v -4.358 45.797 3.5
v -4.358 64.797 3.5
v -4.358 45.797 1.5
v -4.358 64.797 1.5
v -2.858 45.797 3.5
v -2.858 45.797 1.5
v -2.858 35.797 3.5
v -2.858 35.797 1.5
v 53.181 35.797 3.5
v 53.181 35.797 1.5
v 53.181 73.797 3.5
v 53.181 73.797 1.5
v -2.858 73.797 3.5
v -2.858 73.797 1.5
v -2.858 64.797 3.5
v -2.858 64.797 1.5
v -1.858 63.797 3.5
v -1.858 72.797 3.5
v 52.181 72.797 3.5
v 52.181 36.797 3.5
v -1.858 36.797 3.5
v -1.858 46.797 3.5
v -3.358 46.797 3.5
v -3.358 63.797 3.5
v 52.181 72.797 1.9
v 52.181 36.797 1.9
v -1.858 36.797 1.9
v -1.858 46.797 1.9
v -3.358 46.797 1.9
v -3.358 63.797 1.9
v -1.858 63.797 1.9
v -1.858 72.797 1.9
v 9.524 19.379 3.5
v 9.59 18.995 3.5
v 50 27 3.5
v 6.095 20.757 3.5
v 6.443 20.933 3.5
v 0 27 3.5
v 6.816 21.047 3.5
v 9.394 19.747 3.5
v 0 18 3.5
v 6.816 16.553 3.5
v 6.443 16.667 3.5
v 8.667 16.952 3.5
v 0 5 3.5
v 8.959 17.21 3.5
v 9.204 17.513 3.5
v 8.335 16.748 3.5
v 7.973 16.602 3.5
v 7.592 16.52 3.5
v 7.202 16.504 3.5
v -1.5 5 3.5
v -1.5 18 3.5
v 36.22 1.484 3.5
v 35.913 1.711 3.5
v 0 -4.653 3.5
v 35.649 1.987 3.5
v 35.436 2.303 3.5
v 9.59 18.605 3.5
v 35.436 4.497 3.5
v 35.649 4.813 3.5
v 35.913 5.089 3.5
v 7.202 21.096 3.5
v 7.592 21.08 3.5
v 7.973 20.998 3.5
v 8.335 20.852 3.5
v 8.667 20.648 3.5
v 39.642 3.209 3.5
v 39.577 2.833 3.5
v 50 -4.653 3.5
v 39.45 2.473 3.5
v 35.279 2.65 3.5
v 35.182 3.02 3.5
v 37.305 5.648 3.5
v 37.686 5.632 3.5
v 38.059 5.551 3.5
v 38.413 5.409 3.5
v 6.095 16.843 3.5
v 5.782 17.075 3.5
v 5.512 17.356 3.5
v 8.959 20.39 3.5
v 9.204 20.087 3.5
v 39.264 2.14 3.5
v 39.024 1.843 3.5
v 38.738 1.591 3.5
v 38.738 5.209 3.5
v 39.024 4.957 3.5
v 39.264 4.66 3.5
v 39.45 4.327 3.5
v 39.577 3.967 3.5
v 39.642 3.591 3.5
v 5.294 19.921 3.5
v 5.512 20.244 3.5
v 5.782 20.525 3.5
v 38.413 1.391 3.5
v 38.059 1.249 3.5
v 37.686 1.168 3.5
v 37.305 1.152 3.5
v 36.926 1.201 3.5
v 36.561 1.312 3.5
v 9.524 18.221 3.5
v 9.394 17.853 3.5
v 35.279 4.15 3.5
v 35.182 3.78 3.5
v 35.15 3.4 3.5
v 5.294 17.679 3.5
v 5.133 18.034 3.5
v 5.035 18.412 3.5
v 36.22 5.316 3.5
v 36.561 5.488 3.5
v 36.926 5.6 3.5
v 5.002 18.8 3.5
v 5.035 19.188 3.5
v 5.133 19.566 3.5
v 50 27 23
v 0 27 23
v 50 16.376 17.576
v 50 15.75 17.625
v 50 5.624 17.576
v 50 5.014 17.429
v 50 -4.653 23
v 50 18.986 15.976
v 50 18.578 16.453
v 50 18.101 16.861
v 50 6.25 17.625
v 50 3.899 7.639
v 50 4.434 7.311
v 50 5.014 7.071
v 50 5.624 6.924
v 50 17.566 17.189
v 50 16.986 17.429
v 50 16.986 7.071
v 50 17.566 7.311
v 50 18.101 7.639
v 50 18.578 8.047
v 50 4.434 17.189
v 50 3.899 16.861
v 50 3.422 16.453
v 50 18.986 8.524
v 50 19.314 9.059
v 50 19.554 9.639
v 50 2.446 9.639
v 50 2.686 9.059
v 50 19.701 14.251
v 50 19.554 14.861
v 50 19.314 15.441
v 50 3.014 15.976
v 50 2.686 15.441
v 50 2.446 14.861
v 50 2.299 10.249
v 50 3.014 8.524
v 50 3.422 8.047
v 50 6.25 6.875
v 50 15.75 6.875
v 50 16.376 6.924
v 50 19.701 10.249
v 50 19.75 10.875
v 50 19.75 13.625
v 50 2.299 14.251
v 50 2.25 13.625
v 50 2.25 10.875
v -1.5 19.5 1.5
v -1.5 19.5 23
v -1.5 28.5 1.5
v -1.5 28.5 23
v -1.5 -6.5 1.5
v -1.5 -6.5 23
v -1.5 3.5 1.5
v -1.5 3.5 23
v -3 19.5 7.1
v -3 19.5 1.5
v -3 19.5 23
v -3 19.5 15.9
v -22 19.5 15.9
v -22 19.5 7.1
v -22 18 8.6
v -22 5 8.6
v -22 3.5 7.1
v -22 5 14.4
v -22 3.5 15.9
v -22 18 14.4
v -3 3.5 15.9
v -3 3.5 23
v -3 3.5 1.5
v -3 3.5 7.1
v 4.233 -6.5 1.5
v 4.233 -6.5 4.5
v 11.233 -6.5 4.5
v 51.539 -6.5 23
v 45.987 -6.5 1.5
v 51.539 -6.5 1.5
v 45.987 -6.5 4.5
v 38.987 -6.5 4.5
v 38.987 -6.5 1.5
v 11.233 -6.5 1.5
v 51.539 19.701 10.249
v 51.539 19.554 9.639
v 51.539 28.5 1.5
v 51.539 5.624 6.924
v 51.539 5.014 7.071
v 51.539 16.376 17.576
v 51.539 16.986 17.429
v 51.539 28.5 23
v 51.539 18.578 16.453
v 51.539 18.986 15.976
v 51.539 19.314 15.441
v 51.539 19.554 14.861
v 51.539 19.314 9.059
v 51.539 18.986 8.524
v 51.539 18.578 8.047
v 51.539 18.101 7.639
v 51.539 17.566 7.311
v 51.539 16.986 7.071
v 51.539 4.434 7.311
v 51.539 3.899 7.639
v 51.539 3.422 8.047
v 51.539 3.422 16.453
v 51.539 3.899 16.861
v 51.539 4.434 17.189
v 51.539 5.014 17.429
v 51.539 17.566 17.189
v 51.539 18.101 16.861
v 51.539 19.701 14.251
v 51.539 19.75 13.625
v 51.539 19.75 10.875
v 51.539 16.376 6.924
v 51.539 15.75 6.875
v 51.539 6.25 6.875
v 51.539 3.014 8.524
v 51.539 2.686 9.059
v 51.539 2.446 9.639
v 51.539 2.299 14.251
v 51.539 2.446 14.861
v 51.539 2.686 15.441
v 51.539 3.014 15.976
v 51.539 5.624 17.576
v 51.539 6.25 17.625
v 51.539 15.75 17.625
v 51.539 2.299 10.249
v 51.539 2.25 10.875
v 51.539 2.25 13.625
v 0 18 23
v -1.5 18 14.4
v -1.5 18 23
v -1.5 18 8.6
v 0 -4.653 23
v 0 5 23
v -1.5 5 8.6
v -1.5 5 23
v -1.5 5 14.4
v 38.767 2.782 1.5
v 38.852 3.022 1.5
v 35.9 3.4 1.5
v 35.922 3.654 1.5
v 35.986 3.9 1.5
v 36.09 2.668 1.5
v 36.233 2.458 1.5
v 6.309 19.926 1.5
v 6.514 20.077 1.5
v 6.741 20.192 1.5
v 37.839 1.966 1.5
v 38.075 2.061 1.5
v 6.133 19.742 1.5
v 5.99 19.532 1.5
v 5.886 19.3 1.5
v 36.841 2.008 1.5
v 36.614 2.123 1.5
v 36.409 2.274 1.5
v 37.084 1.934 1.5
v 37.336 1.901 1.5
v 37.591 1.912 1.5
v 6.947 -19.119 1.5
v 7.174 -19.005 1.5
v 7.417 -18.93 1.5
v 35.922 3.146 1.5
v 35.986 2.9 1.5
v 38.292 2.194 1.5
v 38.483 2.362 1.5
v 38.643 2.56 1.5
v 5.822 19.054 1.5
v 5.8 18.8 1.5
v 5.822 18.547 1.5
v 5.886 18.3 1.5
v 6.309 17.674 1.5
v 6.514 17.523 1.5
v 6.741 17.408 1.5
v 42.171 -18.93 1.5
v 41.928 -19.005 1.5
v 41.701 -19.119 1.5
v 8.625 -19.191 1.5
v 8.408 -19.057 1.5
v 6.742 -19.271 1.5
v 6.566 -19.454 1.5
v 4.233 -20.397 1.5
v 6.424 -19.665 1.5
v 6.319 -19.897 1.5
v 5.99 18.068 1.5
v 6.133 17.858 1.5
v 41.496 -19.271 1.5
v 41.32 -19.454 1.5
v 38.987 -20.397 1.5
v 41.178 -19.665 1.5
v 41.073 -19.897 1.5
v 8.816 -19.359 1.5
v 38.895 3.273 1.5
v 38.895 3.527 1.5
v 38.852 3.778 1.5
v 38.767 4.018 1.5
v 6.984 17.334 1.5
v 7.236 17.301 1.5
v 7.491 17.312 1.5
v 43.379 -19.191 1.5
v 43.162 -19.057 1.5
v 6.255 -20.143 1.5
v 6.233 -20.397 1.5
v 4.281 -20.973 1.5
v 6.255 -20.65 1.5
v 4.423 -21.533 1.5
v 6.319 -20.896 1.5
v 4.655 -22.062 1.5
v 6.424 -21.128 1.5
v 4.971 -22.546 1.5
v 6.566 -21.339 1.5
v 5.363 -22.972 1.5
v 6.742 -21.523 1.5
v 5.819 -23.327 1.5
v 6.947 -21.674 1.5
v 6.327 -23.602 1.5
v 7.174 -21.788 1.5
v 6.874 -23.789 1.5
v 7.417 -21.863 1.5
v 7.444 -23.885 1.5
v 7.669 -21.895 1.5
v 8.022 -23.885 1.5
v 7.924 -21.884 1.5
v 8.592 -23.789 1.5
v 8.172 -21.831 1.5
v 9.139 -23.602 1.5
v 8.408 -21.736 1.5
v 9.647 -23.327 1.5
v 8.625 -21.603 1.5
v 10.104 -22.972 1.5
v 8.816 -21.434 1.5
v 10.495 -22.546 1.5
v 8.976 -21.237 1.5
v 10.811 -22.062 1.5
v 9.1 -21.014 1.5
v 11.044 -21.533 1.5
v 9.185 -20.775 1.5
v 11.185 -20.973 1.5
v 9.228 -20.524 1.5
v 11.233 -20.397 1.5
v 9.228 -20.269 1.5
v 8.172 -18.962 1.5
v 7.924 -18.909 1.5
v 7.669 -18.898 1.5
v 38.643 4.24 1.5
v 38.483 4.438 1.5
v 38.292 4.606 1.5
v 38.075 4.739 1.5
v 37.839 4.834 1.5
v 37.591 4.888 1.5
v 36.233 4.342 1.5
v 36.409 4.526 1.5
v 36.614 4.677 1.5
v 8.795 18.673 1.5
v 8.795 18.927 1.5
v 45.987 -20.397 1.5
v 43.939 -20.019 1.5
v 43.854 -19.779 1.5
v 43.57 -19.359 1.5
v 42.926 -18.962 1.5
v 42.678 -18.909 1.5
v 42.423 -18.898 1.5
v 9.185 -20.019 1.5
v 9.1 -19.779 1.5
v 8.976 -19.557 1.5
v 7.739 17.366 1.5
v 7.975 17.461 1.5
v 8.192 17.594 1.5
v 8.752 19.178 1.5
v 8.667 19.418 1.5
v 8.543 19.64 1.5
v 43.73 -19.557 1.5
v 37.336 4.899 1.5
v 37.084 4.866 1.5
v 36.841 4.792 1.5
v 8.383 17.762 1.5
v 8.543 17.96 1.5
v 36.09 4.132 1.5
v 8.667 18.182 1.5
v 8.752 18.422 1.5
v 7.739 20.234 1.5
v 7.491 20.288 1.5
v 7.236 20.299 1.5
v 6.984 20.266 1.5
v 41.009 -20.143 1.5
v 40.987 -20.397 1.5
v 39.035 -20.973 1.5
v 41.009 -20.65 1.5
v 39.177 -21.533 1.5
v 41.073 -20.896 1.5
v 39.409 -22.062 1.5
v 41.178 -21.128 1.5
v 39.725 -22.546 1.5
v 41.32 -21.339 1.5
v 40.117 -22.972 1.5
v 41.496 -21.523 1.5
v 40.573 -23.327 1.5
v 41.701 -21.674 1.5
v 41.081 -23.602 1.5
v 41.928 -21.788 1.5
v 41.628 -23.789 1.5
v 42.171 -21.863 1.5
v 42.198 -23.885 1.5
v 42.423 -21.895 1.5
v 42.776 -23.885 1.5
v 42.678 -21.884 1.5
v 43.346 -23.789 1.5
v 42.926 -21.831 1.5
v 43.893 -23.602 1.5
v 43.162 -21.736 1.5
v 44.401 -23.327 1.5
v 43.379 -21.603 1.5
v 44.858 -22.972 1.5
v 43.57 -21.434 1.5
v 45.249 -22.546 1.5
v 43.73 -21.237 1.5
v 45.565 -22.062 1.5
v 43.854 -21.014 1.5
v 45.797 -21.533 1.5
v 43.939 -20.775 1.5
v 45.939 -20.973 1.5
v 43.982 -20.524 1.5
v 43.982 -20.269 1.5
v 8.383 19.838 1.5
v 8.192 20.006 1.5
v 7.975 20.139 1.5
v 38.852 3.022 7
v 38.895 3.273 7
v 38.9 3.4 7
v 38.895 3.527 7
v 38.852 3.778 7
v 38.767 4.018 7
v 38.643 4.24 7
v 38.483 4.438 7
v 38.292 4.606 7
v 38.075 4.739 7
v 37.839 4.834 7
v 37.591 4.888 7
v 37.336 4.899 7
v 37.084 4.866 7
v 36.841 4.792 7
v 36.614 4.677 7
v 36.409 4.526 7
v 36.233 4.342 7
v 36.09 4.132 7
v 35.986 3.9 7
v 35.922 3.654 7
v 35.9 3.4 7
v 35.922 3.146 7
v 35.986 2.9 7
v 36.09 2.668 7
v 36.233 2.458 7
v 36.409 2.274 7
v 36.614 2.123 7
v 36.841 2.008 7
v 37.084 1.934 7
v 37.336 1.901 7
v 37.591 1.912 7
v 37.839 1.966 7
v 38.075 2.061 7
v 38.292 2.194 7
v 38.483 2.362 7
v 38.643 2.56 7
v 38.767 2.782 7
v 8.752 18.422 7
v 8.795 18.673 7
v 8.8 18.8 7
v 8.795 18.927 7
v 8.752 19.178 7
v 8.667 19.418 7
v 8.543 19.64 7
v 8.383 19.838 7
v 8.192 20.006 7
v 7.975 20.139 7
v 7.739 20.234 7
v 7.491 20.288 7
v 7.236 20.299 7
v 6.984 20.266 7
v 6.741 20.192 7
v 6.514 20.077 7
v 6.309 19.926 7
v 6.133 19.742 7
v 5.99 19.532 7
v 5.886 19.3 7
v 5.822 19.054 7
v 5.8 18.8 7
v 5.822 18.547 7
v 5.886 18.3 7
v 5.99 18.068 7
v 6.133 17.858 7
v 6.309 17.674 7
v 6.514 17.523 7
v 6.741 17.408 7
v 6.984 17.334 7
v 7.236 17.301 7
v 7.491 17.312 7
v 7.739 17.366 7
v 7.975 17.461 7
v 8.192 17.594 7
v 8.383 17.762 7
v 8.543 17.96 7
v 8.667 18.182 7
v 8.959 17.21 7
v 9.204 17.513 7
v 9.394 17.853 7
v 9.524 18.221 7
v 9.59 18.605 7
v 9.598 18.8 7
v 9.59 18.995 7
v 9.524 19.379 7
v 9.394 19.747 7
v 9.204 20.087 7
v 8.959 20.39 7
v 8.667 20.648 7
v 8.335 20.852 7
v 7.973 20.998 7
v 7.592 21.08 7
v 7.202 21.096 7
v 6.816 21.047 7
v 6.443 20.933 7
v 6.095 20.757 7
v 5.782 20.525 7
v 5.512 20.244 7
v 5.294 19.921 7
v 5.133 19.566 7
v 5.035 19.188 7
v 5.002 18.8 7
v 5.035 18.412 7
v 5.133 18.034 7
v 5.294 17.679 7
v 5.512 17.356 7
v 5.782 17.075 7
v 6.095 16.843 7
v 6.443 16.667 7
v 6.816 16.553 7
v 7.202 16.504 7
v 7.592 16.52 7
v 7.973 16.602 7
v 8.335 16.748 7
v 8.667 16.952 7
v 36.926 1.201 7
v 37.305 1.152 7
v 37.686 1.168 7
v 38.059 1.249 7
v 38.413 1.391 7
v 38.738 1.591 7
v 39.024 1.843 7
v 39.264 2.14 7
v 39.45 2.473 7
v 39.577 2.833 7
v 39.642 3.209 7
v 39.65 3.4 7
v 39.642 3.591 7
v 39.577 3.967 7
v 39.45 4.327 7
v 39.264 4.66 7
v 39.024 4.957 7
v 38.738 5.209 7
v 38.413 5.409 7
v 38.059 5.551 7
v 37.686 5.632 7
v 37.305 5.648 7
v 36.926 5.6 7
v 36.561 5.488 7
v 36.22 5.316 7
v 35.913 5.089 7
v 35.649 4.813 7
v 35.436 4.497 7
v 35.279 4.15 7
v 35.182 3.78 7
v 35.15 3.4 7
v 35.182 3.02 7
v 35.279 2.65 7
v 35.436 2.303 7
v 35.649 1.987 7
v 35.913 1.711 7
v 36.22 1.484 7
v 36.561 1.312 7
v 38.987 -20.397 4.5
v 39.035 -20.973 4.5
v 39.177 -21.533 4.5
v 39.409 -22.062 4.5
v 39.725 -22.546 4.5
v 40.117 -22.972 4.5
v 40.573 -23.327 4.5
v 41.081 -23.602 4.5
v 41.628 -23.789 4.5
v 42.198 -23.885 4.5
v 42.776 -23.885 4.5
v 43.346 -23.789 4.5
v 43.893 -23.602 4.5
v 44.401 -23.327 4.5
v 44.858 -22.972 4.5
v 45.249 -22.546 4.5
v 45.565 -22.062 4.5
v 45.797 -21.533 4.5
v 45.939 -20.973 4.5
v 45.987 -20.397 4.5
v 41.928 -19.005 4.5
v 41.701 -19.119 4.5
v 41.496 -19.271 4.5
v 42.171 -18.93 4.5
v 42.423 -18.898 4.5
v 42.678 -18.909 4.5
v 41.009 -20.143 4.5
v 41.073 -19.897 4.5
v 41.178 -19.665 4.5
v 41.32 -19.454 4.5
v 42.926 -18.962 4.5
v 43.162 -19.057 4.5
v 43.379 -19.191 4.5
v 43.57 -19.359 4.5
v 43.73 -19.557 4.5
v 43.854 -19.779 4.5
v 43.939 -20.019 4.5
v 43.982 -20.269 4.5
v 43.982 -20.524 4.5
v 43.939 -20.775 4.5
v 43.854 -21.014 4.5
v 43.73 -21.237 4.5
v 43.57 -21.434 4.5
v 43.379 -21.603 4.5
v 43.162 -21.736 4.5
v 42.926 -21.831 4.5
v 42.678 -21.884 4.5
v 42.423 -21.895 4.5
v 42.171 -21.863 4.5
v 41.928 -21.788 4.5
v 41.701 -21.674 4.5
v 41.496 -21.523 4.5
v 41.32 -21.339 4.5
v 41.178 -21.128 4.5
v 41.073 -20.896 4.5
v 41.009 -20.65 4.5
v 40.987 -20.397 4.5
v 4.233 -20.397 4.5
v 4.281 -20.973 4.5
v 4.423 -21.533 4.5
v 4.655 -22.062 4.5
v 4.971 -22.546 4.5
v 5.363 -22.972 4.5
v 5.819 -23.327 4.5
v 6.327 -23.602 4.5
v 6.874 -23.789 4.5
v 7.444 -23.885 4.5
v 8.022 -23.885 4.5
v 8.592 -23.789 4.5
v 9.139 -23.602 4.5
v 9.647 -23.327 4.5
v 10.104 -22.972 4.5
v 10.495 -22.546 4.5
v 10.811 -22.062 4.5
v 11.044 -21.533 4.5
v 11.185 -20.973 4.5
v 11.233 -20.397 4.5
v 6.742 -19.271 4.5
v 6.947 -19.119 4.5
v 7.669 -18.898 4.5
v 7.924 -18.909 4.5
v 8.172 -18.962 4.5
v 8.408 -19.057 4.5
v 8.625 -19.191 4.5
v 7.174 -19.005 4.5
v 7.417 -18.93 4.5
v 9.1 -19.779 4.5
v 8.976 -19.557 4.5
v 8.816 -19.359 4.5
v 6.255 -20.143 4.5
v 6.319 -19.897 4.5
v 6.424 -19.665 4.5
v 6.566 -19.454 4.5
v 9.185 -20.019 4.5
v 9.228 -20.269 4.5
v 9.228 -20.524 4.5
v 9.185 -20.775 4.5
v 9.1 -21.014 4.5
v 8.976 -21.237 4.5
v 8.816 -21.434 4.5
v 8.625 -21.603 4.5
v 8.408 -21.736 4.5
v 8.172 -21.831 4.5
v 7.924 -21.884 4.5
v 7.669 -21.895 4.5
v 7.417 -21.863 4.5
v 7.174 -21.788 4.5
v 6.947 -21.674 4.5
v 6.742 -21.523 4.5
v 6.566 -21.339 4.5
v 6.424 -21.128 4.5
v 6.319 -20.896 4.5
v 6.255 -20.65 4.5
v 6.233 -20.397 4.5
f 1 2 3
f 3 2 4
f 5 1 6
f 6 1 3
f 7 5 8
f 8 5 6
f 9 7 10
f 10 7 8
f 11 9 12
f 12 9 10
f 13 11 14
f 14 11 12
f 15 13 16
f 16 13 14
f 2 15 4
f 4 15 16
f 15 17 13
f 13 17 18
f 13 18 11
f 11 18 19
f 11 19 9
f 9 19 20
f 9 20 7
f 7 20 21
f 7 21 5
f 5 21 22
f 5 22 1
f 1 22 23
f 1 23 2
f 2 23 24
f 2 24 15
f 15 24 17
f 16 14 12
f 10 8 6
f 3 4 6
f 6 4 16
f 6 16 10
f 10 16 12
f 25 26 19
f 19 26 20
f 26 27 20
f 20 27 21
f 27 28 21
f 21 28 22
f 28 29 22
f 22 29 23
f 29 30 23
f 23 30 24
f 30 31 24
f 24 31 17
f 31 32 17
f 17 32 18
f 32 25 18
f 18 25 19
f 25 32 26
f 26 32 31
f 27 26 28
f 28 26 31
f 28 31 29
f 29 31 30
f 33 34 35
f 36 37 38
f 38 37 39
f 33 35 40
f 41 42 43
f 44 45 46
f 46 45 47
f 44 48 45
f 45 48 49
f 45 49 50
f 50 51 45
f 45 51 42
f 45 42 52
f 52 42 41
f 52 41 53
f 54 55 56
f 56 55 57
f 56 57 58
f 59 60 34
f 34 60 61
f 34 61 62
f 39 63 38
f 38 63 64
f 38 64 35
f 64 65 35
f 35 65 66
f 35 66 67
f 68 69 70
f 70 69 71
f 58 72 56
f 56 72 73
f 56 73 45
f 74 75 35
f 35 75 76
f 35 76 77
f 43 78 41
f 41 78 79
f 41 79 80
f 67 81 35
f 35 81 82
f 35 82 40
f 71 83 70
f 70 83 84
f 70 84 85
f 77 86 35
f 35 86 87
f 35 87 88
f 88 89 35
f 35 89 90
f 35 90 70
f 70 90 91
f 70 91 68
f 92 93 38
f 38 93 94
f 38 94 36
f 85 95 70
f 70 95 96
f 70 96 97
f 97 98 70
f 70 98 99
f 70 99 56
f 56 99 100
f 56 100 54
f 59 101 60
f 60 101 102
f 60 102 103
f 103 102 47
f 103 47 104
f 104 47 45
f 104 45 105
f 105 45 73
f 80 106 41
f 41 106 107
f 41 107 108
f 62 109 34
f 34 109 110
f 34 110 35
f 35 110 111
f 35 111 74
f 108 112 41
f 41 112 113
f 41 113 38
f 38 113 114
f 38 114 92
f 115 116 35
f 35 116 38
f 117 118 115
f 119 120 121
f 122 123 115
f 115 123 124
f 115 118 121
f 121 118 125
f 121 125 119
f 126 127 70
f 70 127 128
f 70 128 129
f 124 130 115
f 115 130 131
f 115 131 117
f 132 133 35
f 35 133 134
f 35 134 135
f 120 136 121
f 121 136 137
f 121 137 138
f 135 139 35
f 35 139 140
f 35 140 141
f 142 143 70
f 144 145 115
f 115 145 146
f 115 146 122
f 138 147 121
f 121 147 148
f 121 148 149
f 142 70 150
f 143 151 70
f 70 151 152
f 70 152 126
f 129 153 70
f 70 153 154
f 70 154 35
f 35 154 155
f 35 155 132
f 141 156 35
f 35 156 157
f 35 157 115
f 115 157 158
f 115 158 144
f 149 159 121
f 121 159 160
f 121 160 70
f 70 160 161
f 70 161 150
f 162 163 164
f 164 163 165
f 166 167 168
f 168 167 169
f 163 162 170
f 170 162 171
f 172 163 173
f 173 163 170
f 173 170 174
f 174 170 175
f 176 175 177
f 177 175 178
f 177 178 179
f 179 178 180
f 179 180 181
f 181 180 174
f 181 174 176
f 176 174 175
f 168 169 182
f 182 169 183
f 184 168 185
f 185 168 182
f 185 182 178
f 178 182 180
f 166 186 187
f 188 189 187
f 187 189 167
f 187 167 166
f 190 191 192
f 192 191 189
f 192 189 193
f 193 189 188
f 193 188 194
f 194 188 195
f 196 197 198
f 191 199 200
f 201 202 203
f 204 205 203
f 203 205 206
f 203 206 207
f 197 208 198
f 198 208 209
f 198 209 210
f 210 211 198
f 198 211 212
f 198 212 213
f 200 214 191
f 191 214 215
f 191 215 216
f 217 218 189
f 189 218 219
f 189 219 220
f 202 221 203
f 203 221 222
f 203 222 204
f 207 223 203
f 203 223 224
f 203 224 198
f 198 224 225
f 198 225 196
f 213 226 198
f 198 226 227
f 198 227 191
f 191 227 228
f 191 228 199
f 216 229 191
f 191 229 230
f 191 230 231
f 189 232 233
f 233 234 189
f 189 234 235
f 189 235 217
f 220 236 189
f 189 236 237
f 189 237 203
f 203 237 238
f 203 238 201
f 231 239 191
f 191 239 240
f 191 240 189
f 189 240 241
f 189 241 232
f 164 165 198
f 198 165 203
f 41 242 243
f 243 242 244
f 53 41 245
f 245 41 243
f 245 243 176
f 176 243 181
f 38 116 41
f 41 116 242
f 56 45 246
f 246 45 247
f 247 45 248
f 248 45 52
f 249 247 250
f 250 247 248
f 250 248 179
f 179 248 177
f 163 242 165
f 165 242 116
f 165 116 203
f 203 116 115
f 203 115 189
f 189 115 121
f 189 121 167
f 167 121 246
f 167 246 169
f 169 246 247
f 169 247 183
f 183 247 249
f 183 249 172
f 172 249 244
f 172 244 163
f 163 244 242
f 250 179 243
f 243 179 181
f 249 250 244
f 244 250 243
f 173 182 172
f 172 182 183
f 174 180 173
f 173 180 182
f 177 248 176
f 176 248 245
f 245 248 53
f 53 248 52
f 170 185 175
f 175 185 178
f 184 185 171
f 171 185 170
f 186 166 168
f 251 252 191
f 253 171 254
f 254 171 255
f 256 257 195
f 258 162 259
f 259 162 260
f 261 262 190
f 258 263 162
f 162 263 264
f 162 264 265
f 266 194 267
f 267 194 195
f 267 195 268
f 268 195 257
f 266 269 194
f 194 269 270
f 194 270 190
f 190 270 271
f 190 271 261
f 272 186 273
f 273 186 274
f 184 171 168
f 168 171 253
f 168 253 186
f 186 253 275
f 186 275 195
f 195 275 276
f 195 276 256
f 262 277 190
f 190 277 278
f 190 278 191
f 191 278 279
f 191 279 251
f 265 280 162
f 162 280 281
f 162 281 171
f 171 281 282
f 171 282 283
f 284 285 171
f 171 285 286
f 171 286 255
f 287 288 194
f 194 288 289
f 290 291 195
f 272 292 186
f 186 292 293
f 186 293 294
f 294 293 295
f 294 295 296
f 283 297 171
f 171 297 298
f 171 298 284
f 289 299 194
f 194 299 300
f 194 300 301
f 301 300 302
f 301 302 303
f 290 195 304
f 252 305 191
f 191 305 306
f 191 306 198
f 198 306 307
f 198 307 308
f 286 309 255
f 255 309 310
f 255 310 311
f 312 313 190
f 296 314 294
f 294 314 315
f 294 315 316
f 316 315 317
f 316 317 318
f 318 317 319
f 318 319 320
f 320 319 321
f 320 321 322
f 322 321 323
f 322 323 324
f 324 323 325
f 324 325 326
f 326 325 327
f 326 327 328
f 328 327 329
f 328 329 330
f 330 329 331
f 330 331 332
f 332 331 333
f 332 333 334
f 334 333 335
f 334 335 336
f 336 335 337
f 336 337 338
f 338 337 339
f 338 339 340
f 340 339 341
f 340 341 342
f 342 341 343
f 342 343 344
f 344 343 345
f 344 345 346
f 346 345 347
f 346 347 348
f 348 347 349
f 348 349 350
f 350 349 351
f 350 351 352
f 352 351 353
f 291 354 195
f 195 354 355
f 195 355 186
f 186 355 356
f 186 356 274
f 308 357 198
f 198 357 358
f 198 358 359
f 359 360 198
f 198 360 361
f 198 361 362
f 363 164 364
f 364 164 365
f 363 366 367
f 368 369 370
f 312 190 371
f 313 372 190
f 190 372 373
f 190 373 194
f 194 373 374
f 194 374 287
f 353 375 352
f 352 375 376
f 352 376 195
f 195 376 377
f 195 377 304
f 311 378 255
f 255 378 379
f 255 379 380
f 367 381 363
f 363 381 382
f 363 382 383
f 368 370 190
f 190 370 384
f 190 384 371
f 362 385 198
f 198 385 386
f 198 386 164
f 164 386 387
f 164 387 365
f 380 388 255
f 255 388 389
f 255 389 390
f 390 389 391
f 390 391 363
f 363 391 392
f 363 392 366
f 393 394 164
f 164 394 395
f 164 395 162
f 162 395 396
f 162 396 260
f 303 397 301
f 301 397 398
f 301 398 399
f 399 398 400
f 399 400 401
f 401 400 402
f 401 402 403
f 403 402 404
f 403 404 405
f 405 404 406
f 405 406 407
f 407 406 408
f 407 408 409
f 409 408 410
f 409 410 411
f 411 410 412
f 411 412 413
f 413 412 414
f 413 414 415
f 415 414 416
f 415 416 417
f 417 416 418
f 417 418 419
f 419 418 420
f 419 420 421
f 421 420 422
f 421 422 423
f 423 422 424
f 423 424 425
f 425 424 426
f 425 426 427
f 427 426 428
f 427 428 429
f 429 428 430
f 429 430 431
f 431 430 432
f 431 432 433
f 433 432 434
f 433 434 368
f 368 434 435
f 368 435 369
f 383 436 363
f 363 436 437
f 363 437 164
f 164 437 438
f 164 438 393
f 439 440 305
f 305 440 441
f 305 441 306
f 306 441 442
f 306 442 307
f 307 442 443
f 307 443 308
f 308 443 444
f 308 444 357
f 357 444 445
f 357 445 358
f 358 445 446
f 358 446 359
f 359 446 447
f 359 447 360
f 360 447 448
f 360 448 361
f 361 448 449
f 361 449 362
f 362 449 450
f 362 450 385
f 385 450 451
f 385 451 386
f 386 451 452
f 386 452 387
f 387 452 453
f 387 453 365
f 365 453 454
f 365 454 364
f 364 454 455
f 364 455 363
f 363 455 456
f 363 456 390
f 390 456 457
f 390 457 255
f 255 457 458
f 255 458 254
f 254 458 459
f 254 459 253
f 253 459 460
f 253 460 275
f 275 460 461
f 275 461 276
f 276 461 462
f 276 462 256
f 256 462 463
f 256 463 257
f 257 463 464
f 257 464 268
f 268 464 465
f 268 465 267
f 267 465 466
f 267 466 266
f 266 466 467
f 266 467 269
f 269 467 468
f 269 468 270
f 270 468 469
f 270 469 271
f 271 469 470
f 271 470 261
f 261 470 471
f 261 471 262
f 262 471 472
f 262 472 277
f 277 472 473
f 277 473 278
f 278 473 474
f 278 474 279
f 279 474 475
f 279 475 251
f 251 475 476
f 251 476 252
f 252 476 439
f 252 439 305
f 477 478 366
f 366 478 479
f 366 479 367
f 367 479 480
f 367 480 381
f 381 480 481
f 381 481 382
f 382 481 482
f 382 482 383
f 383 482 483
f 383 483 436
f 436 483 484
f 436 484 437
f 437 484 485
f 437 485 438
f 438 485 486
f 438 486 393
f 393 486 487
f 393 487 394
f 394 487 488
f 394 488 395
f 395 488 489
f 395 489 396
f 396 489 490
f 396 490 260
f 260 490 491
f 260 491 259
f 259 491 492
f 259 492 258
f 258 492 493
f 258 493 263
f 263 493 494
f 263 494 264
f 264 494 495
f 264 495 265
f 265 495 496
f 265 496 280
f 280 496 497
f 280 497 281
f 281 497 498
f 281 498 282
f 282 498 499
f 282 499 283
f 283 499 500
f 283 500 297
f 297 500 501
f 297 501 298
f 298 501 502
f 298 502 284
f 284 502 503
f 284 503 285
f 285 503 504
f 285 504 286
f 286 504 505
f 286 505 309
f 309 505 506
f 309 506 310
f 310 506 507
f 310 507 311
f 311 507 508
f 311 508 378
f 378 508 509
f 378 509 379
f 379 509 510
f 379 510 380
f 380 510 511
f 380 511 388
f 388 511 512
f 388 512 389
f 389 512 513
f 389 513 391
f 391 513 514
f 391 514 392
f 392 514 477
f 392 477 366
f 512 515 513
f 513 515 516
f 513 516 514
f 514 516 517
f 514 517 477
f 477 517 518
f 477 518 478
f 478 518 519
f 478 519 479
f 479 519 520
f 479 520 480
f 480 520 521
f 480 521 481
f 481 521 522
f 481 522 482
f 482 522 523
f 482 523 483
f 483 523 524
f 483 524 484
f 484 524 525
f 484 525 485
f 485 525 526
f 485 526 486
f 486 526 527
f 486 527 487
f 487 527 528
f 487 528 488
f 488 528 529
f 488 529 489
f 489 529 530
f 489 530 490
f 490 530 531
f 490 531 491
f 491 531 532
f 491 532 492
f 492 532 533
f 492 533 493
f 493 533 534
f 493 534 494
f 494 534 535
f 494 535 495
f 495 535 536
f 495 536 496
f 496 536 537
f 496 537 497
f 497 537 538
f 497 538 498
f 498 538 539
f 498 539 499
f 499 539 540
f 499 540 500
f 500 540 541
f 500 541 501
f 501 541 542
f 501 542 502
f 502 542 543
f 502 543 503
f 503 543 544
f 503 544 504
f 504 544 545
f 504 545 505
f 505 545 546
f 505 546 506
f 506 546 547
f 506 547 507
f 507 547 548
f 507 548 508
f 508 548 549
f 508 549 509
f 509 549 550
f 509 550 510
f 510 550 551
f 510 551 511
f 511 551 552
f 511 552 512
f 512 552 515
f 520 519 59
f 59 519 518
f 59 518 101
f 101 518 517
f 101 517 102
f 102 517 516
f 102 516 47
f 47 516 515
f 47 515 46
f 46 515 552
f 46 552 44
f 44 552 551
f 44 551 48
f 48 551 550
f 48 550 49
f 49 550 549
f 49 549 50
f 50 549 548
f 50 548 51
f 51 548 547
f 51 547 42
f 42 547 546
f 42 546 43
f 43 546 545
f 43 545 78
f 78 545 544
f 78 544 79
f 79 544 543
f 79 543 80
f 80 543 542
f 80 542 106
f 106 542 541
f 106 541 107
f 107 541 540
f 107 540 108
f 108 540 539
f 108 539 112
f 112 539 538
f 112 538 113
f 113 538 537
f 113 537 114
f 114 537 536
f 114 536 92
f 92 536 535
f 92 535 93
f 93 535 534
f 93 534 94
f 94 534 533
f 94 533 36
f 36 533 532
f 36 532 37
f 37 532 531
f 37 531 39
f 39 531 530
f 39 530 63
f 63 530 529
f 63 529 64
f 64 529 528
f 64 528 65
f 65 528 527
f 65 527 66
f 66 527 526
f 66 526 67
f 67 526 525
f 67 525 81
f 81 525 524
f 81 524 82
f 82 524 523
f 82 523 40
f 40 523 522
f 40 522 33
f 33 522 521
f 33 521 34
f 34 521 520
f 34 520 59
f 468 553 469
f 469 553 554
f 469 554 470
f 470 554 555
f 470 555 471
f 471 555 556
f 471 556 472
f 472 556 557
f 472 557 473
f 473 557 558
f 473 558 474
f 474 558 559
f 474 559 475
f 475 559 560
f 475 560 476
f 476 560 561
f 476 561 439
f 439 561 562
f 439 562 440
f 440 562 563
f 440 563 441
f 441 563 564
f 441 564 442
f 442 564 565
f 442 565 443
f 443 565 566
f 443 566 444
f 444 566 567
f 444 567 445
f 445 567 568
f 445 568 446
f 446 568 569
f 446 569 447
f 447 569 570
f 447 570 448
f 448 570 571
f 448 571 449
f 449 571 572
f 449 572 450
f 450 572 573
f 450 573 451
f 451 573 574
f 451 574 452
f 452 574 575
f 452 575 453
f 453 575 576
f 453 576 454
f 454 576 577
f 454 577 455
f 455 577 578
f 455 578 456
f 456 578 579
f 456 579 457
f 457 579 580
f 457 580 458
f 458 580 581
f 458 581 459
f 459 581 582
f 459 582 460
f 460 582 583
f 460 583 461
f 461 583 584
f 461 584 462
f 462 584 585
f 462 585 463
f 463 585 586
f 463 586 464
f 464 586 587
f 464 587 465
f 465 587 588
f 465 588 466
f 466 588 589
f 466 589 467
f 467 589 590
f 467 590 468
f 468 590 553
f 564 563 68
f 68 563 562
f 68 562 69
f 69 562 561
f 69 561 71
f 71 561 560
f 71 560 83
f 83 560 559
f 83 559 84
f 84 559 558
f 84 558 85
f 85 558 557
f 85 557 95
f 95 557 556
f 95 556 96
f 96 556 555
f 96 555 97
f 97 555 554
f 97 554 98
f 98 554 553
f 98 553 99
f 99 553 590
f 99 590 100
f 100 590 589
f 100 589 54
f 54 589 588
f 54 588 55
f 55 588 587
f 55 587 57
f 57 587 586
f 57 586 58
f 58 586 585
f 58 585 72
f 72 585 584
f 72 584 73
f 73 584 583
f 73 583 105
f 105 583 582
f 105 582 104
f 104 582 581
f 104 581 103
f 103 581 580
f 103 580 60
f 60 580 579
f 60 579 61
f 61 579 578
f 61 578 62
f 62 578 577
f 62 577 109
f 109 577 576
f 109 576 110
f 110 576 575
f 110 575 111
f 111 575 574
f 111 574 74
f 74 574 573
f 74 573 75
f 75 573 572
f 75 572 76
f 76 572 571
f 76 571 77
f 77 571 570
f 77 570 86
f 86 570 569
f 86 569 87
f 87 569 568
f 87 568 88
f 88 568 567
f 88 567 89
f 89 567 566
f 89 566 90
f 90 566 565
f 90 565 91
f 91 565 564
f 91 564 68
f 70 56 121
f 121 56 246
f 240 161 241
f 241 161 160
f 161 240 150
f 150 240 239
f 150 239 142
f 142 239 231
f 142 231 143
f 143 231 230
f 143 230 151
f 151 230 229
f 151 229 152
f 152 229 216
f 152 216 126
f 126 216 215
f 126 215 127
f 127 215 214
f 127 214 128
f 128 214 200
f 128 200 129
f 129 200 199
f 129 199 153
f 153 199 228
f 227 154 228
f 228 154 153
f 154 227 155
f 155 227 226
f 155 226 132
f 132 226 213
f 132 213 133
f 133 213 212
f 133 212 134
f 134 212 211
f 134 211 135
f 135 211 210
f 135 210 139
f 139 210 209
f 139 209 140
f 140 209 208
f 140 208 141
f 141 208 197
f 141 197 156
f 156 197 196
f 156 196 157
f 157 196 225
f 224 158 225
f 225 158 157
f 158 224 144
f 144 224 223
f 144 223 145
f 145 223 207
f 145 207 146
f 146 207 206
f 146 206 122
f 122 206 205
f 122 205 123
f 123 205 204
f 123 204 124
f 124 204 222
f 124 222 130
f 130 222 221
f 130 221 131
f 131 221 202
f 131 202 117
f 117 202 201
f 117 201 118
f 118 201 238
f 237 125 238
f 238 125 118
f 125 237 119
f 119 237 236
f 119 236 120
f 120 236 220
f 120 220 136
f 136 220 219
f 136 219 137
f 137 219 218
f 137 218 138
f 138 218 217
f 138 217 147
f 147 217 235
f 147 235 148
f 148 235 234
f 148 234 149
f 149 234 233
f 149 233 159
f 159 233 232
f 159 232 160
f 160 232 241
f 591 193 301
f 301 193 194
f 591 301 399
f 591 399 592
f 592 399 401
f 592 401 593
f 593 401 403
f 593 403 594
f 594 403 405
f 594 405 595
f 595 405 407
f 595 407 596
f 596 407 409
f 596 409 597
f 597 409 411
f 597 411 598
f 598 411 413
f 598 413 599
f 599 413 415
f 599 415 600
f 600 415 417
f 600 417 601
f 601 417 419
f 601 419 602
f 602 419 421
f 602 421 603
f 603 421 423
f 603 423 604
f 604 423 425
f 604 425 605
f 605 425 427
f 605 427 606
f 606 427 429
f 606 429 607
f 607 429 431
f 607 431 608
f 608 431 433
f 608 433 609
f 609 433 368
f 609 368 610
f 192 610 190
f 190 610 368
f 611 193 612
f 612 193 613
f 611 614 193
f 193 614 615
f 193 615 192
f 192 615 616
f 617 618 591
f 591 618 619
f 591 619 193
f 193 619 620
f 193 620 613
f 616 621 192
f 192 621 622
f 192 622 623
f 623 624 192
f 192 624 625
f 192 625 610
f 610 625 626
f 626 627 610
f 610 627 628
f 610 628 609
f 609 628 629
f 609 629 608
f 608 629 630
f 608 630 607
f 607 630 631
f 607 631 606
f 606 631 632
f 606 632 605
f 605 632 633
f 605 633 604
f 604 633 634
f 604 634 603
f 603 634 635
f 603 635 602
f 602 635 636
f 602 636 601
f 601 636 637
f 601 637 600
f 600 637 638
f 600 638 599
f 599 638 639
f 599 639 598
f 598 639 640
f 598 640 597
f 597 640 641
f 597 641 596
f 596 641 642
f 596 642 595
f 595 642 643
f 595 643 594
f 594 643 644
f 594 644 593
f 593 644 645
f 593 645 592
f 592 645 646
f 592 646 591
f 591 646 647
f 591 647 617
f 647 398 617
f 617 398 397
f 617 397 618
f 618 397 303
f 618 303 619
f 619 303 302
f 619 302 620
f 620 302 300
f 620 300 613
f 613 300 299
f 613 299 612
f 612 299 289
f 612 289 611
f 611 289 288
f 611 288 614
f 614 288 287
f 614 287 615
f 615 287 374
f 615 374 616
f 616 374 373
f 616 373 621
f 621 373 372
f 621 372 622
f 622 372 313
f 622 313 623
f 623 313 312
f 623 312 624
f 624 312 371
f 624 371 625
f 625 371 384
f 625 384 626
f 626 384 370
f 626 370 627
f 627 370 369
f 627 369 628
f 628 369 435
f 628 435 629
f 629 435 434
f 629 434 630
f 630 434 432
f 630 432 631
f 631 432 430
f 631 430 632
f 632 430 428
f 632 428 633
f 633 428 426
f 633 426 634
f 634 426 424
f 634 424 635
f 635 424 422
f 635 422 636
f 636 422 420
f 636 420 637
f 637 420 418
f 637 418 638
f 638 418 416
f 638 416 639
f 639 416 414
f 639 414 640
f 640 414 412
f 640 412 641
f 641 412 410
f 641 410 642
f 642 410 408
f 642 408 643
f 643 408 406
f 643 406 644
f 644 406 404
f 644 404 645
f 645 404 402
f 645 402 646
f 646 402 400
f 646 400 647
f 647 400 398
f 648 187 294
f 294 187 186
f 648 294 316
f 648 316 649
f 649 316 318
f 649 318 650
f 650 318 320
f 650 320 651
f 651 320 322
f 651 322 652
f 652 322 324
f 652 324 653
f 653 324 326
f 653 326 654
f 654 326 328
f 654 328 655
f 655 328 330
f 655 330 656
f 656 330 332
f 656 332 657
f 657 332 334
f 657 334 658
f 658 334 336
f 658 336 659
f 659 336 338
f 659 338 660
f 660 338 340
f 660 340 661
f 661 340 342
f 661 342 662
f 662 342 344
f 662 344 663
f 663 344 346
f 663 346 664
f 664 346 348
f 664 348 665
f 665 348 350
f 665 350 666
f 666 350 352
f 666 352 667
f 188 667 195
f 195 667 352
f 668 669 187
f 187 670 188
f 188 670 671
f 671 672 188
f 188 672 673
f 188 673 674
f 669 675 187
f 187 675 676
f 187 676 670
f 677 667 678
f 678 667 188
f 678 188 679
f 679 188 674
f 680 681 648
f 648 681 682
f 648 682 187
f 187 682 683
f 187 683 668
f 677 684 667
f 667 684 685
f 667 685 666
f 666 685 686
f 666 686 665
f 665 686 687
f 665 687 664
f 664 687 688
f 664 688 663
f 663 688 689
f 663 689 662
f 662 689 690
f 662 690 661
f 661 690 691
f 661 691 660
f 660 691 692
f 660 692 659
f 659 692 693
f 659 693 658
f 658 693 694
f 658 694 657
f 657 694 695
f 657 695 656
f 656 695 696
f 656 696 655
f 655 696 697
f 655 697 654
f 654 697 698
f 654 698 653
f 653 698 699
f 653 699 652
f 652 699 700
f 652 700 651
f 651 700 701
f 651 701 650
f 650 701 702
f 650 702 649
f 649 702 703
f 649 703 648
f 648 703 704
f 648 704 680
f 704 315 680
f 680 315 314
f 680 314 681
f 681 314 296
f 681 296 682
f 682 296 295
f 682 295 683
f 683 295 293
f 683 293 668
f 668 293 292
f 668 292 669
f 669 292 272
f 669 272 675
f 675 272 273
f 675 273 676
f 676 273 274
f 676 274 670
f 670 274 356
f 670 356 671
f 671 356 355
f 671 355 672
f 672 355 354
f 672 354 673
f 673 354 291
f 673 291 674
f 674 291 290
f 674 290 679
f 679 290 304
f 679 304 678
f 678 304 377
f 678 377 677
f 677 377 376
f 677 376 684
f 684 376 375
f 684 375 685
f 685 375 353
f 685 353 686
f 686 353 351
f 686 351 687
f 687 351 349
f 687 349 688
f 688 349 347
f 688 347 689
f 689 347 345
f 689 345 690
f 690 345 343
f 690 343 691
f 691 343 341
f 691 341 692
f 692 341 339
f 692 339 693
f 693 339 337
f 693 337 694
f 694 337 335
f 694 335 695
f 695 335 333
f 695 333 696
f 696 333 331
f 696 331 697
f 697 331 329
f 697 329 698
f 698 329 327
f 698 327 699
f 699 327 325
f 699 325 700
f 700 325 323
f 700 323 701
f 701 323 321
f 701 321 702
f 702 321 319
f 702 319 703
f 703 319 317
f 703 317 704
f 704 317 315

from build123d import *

# Parameters (mm, degrees)
SALIENTE_EXTRUIR1_DEPTH  = 23
CROQUIS2_W               = 53.038770051
CROQUIS2_H               = 35
SALIENTE_EXTRUIR2_DEPTH  = 1.5
CORTAR_EXTRUIR1_REACH    = 63.727
CROQUIS3_W               = 20.5
CROQUIS3_H               = 8.6
SALIENTE_EXTRUIR4_DEPTH  = 16
CORTAR_EXTRUIR5_REACH    = 68.41
CROQUIS12_W              = 49.5
CROQUIS12_H              = 5
SALIENTE_EXTRUIR14_DEPTH = 2
AGUJEROS_R               = 1.5
CORTAR_EXTRUIR12_DEPTH   = 3.5
CROQUIS29_R              = 2.298318417
CROQUIS29_R_2            = 1.5
CROQUIS29_R_3            = 2.25
SALIENTE_EXTRUIR15_DEPTH = 3.5
CROQUIS27_W              = 50
CROQUIS27_H              = 4.65287556
CORTAR_EXTRUIR15_DEPTH   = 19.5
CROQUIS30_W              = 3
CROQUIS30_H              = 35
CORTAR_EXTRUIR17_DEPTH   = 5.038770051
SALIENTE_EXTRUIR16_DEPTH = 2
CORTAR_EXTRUIR19_DEPTH   = 1.6
CORTAR_EXTRUIR20_DEPTH   = 1.538770051
CROQUIS35_R              = 1.5
SALIENTE_EXTRUIR17_DEPTH = 3


with BuildPart() as part:
    # Croquis1 → Saliente-Extruir1 (new body)
    with BuildSketch(Plane.XY):
        Polygon((51.538770051, -6.5), (-1.5, -6.5), (-1.5, 3.5), (-22, 3.5), (-22, 5), (0, 5), (0, 0), (50, 0), (50, 27), (0, 27), (0, 18), (-22, 18), (-22, 19.5), (-1.5, 19.5), (-1.5, 28.5), (51.538770051, 28.5), align=None)
    extrude(amount=SALIENTE_EXTRUIR1_DEPTH)

    # Croquis2 → Saliente-Extruir2 (add)
    with BuildSketch(Plane(origin=(0, 0, 0), x_dir=(-1, 0, 0), z_dir=(0, 0, -1))):
        with Locations((-25.019385026, 11)):
            Rectangle(CROQUIS2_W, CROQUIS2_H)
    extrude(amount=SALIENTE_EXTRUIR2_DEPTH)

    # Cortar-Extruir1: up to this face of the body (flat: up to its plane)
    cortar_extruir1_end = Plane(part.part.faces().sort_by_distance((-11.75, 19.5, 11.5))[0])
    # Croquis3 → Cortar-Extruir1 (cut, up to the picked face)
    with BuildSketch(Plane.XZ.offset(-3.5), mode=Mode.PRIVATE) as cortar_extruir1_sk1:
        with Locations((-11.75, 18.7)):
            Rectangle(CROQUIS3_W, CROQUIS3_H)
    cortar_extruir1_tool1 = split(extrude(cortar_extruir1_sk1.sketch, amount=-CORTAR_EXTRUIR1_REACH, mode=Mode.PRIVATE), bisect_by=cortar_extruir1_end, keep=Keep.BOTH, mode=Mode.PRIVATE)
    # Croquis3 → Cortar-Extruir1 (cut, up to the picked face)
    with BuildSketch(Plane.XZ.offset(-3.5), mode=Mode.PRIVATE) as cortar_extruir1_sk2:
        with Locations((-11.75, 4.3)):
            Rectangle(CROQUIS3_W, CROQUIS3_H)
    cortar_extruir1_tool2 = split(extrude(cortar_extruir1_sk2.sketch, amount=-CORTAR_EXTRUIR1_REACH, mode=Mode.PRIVATE), bisect_by=cortar_extruir1_end, keep=Keep.BOTH, mode=Mode.PRIVATE)
    add(cortar_extruir1_tool1.solids().sort_by(Axis((-11.75, 3.5, 18.7), (0, 1, 0)))[0], mode=Mode.SUBTRACT)
    add(cortar_extruir1_tool2.solids().sort_by(Axis((-11.75, 3.5, 4.3), (0, 1, 0)))[0], mode=Mode.SUBTRACT)

    # Croquis4 → Saliente-Extruir4 (add)
    with BuildSketch(Plane.XZ.offset(-3.5)):
        Polygon((-22, 14.4), (-1.5, 14.4), (-1.5, 23), (-3, 23), (-3, 15.9), (-22, 15.9), align=None)
        Polygon((-22, 8.6), (-1.5, 8.6), (-1.5, -1.5), (-3, -1.5), (-3, 7.1), (-22, 7.1), align=None)
    extrude(amount=-SALIENTE_EXTRUIR4_DEPTH)

    # Cortar-Extruir5: up to this face of the body (flat: up to its plane)
    cortar_extruir5_end = Plane(part.part.faces().sort_by_distance((25.019385026, 28.5, 10.75))[0])
    # Croquis12 → Cortar-Extruir5 (cut, up to the picked face)
    with BuildSketch(Plane.XZ.offset(6.5), mode=Mode.PRIVATE) as cortar_extruir5_sk1:
        with Locations((21.75, 1)):
            Rectangle(CROQUIS12_W, CROQUIS12_H)
    cortar_extruir5_tool1 = split(extrude(cortar_extruir5_sk1.sketch, amount=-CORTAR_EXTRUIR5_REACH, mode=Mode.PRIVATE), bisect_by=cortar_extruir5_end, keep=Keep.BOTH, mode=Mode.PRIVATE)
    add(cortar_extruir5_tool1.solids().sort_by(Axis((21.75, -6.5, 1), (0, 1, 0)))[0], mode=Mode.SUBTRACT)

    # Croquis14 → Saliente-Extruir14 (add)
    with BuildSketch(Plane(origin=(0, 0, 3.5), x_dir=(-1, 0, 0), z_dir=(0, 0, -1))):
        Polygon((1.5, 3.5), (1.5, -6.5), (-51.538770051, -6.5), (-51.538770051, 28.5), (1.5, 28.5), (1.5, 19.5), (3, 19.5), (3, 3.5), align=None)
    extrude(amount=SALIENTE_EXTRUIR14_DEPTH)

    # Agujeros → Cortar-Extruir12 (cut)
    with BuildSketch(Plane.XY):
        with Locations(Location((37.4, 3.4, 0), (0, 0, 180))):
            Circle(AGUJEROS_R)
        with Locations(Location((7.3, 18.8, 0), (0, 0, 180))):
            Circle(AGUJEROS_R)
    extrude(amount=CORTAR_EXTRUIR12_DEPTH, mode=Mode.SUBTRACT)

    # Croquis29 → Saliente-Extruir15 (add)
    # profile 1 of 2: a face of its own
    with BuildSketch(Plane.XY.offset(3.5)):
        with Locations(Location((7.3, 18.8, 0), (0, 0, 180))):
            Circle(CROQUIS29_R)
        with Locations(Location((7.3, 18.8, 0), (0, 0, 180))):
            Circle(CROQUIS29_R_2, mode=Mode.SUBTRACT)
    # profile 2 of 2: a face of its own
    with BuildSketch(Plane.XY.offset(3.5)):
        with Locations(Location((37.4, 3.4, 0), (0, 0, 180))):
            Circle(CROQUIS29_R_3)
        with Locations(Location((37.4, 3.4, 0), (0, 0, 180))):
            Circle(CROQUIS29_R_2, mode=Mode.SUBTRACT)
    extrude(amount=SALIENTE_EXTRUIR15_DEPTH)

    # Croquis27 → Cortar-Extruir15 (cut)
    with BuildSketch(Plane.XY.offset(23)):
        with Locations((25, -2.32643778)):
            Rectangle(CROQUIS27_W, CROQUIS27_H)
    extrude(amount=-CORTAR_EXTRUIR15_DEPTH, mode=Mode.SUBTRACT)

    # Croquis30 → Cortar-Extruir17 (cut)
    with BuildSketch(Plane.ZY.offset(-46.5)):
        with Locations((0, 11)):
            Rectangle(CROQUIS30_W, CROQUIS30_H)
    extrude(amount=-CORTAR_EXTRUIR17_DEPTH, mode=Mode.SUBTRACT)

    # Croquis34 → Cortar-Extruir20 (cut)
    with BuildSketch(Plane(origin=(51.538770051, 0, 0), x_dir=(0, 0, -1), z_dir=(1, 0, 0))):
        with BuildLine():
            Line((-13.625, 19.75), (-10.875, 19.75))
            ThreePointArc((-10.875, 19.75), (-8.046572875, 18.578427125), (-6.875, 15.75))
            Line((-6.875, 15.75), (-6.875, 6.25))
            ThreePointArc((-6.875, 6.25), (-8.046572875, 3.421572875), (-10.875, 2.25))
            Line((-10.875, 2.25), (-13.625, 2.25))
            ThreePointArc((-13.625, 2.25), (-16.453427125, 3.421572875), (-17.625, 6.25))
            Line((-17.625, 6.25), (-17.625, 15.75))
            ThreePointArc((-17.625, 15.75), (-16.453427125, 18.578427125), (-13.625, 19.75))
        make_face()
    extrude(amount=-CORTAR_EXTRUIR20_DEPTH, mode=Mode.SUBTRACT)

    # Croquis35 → Saliente-Extruir17 (add)
    # profile 1 of 2: a face of its own
    with BuildSketch(Plane(origin=(0, 0, 1.5), x_dir=(-1, 0, 0), z_dir=(0, 0, -1))):
        with BuildLine():
            Line((-38.987043205, -6.5), (-38.987043205, -20.396591545))
            ThreePointArc((-38.987043205, -20.396591545), (-42.487043205, -23.896591545), (-45.987043205, -20.396591545))
            Line((-45.987043205, -20.396591545), (-45.987043205, -6.5))
            Line((-45.987043205, -6.5), (-38.987043205, -6.5))
        make_face()
        with Locations((-42.487043205, -20.396591545)):
            Circle(CROQUIS35_R, mode=Mode.SUBTRACT)
    # profile 2 of 2: a face of its own
    with BuildSketch(Plane(origin=(0, 0, 1.5), x_dir=(-1, 0, 0), z_dir=(0, 0, -1))):
        with BuildLine():
            Line((-4.233147567, -6.5), (-4.233147567, -20.396591545))
            ThreePointArc((-4.233147567, -20.396591545), (-7.733147567, -23.896591545), (-11.233147567, -20.396591545))
            Line((-11.233147567, -20.396591545), (-11.233147567, -6.5))
            Line((-11.233147567, -6.5), (-4.233147567, -6.5))
        make_face()
        with Locations((-7.733147567, -20.396591545)):
            Circle(CROQUIS35_R, mode=Mode.SUBTRACT)
    extrude(amount=-SALIENTE_EXTRUIR17_DEPTH)


with BuildPart() as body_2:
    # Croquis31 → Saliente-Extruir16 (new body)
    with BuildSketch(Plane(origin=(0, 0, 1.5), x_dir=(-1, 0, 0), z_dir=(0, 0, -1))):
        Polygon((4.358060316, 64.797154315), (4.358060316, 45.797154315), (2.858060316, 45.797154315), (2.858060316, 35.797154315), (-53.180709735, 35.797154315), (-53.180709735, 73.797154315), (2.858060316, 73.797154315), (2.858060316, 64.797154315), align=None)
    extrude(amount=-SALIENTE_EXTRUIR16_DEPTH)

    # Croquis32 → Cortar-Extruir19 (cut)
    with BuildSketch(Plane.XY.offset(3.5)):
        Polygon((-1.858060316, 46.797154315), (-1.858060316, 36.797154315), (52.180709735, 36.797154315), (52.180709735, 72.797154315), (-1.858060316, 72.797154315), (-1.858060316, 63.797154315), (-3.358060316, 63.797154315), (-3.358060316, 46.797154315), align=None)
    extrude(amount=-CORTAR_EXTRUIR19_DEPTH, mode=Mode.SUBTRACT)


solid = Compound([part.part, body_2.part])
